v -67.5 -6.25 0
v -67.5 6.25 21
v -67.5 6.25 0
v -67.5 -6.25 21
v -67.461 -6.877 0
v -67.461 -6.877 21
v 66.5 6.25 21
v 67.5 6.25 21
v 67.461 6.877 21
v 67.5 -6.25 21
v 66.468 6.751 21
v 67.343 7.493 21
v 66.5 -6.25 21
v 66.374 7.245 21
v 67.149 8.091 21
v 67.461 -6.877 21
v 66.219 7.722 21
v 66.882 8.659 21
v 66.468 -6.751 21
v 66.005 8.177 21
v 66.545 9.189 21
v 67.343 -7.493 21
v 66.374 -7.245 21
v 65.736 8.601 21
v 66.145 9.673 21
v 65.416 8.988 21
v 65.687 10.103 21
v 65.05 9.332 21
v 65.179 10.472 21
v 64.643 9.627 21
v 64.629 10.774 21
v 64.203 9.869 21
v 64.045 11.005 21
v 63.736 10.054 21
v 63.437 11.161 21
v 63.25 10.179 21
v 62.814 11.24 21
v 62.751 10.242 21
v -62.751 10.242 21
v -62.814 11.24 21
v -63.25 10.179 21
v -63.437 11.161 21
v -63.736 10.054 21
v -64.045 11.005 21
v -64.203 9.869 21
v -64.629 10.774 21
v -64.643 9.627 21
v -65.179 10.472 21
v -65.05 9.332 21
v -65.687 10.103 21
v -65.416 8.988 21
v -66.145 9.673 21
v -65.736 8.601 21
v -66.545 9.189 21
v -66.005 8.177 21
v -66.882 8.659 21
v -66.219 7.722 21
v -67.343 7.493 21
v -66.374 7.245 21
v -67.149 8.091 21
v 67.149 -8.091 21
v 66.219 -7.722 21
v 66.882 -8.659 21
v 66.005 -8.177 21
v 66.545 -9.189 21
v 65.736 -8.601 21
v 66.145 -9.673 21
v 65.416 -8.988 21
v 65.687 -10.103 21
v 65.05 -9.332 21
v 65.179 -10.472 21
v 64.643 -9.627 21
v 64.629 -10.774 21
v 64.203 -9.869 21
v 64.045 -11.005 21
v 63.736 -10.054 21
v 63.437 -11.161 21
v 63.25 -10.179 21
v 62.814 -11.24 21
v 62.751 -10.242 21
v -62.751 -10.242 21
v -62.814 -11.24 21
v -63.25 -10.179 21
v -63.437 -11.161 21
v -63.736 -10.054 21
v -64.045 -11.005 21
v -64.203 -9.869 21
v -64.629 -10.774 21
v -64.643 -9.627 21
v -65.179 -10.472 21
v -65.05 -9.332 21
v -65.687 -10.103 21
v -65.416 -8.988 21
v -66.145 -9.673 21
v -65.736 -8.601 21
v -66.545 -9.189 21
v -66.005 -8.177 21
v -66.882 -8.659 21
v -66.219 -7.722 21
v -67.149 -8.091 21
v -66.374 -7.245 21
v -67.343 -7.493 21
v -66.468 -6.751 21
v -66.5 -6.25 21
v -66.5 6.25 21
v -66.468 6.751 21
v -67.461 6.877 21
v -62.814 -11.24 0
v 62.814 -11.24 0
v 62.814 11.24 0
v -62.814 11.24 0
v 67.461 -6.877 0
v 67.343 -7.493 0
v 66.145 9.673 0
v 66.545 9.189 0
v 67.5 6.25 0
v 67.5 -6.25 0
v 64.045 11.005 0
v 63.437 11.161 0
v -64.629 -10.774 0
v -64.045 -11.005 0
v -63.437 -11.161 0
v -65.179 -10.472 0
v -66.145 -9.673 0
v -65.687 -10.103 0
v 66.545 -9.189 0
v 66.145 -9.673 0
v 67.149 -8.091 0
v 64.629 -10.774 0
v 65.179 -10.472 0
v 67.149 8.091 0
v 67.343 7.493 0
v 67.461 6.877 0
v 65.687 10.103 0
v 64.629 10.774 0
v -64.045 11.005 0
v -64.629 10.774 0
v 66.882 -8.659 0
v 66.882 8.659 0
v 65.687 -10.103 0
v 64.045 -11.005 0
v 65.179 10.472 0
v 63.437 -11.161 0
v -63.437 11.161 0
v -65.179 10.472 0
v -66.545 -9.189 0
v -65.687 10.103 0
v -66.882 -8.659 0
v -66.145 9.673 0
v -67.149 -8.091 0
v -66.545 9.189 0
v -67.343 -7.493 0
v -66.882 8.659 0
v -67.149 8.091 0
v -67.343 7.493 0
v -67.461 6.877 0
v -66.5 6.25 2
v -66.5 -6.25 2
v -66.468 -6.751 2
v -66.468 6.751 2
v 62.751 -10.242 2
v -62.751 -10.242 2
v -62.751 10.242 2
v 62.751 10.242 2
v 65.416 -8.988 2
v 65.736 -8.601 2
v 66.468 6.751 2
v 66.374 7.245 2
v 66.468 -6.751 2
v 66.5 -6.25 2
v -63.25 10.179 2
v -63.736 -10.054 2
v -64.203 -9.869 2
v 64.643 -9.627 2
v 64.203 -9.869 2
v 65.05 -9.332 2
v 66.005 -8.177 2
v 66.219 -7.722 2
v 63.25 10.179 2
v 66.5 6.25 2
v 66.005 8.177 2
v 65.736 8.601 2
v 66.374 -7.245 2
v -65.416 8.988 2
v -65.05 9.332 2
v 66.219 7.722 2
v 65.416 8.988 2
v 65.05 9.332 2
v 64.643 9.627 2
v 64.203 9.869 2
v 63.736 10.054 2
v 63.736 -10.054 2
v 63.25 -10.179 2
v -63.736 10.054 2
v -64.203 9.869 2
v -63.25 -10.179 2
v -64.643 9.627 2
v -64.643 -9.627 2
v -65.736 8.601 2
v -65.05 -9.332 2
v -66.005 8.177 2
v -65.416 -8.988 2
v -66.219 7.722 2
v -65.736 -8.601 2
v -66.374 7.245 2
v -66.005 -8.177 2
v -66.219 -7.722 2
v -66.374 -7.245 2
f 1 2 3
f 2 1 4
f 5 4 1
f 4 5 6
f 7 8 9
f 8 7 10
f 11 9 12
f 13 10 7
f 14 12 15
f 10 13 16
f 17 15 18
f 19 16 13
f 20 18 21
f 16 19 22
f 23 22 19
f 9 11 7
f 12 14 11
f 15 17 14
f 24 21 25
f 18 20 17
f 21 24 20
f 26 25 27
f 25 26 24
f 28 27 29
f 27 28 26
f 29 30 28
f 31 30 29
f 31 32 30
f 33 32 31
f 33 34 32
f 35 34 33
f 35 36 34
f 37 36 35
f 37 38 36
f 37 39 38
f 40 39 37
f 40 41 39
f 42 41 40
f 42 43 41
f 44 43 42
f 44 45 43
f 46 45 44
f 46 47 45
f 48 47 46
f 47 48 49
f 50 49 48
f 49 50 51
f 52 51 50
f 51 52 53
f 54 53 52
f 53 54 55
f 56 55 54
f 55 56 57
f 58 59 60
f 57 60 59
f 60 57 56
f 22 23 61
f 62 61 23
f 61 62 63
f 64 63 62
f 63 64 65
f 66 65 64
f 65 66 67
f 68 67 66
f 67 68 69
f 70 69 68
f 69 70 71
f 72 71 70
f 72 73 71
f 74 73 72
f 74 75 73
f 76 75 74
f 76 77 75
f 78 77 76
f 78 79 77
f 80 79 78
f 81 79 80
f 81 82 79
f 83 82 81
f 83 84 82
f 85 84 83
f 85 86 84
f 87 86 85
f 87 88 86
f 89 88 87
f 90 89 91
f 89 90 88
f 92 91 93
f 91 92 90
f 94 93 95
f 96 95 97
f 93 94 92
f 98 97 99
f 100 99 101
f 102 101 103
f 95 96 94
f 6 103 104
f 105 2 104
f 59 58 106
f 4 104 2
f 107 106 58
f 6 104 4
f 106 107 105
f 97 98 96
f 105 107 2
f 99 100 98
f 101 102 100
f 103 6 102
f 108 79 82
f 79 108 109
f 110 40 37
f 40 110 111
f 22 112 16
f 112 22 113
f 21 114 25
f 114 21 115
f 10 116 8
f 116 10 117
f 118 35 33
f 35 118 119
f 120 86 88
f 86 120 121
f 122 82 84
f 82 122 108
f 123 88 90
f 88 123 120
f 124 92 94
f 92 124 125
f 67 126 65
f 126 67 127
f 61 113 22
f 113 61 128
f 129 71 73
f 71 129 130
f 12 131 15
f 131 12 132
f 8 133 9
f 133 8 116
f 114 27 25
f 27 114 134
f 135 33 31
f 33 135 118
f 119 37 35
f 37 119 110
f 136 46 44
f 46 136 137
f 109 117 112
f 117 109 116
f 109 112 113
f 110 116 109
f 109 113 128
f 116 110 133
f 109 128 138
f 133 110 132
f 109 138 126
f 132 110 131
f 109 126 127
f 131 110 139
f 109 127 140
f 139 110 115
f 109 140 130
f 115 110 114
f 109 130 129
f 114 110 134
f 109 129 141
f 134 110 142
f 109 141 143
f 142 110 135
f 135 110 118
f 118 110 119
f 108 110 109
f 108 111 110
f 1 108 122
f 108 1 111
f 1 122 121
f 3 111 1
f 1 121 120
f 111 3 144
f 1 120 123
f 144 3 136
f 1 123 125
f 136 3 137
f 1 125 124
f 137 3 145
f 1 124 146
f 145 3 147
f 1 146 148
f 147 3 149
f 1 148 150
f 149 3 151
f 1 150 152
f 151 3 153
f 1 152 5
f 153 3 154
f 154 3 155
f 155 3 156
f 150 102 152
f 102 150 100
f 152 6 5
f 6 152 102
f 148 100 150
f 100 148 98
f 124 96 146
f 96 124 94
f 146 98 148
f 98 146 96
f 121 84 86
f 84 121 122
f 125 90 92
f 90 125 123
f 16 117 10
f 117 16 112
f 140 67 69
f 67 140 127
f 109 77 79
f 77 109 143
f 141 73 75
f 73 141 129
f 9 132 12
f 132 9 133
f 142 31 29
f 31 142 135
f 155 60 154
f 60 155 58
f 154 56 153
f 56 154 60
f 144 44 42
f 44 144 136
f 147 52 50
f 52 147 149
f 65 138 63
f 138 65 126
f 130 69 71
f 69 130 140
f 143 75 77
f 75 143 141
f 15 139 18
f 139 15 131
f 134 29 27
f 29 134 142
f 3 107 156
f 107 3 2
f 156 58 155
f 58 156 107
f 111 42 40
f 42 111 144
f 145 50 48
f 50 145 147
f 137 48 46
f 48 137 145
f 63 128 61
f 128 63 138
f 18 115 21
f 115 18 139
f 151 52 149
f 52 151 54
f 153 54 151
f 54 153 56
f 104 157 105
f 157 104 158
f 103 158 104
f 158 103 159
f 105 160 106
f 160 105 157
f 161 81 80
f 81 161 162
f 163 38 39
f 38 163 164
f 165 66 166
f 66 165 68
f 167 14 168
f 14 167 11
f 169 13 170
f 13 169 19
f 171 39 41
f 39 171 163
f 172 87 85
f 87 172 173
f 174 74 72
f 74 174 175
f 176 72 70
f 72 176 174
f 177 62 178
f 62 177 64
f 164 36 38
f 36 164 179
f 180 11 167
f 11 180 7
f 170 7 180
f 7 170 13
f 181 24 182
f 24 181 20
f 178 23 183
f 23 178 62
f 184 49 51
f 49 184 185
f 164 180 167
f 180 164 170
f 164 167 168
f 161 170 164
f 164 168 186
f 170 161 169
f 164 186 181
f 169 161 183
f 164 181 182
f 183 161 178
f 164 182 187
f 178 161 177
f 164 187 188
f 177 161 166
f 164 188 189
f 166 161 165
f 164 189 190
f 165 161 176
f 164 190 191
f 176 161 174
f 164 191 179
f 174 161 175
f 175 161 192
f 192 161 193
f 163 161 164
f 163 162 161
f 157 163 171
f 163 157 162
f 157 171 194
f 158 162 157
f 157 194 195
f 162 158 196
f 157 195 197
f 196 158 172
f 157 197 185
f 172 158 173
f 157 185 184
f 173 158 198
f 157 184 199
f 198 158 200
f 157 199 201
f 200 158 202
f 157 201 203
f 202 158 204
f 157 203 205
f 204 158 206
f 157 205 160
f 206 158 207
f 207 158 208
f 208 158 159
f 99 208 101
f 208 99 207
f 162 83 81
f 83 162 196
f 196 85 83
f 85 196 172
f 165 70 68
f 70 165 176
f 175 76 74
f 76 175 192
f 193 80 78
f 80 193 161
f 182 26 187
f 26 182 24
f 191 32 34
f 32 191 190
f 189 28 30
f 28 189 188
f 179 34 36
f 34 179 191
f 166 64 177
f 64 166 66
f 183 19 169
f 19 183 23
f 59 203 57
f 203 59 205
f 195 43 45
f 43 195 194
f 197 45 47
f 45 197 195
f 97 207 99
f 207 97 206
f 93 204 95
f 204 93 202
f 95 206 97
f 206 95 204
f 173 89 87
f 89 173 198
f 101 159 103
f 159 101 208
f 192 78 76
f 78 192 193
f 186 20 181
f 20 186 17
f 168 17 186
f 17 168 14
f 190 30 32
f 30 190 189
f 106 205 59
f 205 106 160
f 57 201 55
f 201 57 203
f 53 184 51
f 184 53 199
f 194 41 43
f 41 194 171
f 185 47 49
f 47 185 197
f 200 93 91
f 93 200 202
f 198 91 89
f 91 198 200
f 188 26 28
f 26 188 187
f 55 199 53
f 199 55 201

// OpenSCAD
$fn = 50;


difference() {
	union() {
		hull() {
			translate(v = [-62.5000000000, 6.2500000000, 0]) {
				cylinder(h = 21, r = 5);
			}
			translate(v = [62.5000000000, 6.2500000000, 0]) {
				cylinder(h = 21, r = 5);
			}
			translate(v = [-62.5000000000, -6.2500000000, 0]) {
				cylinder(h = 21, r = 5);
			}
			translate(v = [62.5000000000, -6.2500000000, 0]) {
				cylinder(h = 21, r = 5);
			}
		}
	}
	union() {
		translate(v = [0, 0, 2]) {
			hull() {
				translate(v = [-62.5000000000, 6.2500000000, 0]) {
					cylinder(h = 19, r = 4);
				}
				translate(v = [62.5000000000, 6.2500000000, 0]) {
					cylinder(h = 19, r = 4);
				}
				translate(v = [-62.5000000000, -6.2500000000, 0]) {
					cylinder(h = 19, r = 4);
				}
				translate(v = [62.5000000000, -6.2500000000, 0]) {
					cylinder(h = 19, r = 4);
				}
			}
		}
	}
}
